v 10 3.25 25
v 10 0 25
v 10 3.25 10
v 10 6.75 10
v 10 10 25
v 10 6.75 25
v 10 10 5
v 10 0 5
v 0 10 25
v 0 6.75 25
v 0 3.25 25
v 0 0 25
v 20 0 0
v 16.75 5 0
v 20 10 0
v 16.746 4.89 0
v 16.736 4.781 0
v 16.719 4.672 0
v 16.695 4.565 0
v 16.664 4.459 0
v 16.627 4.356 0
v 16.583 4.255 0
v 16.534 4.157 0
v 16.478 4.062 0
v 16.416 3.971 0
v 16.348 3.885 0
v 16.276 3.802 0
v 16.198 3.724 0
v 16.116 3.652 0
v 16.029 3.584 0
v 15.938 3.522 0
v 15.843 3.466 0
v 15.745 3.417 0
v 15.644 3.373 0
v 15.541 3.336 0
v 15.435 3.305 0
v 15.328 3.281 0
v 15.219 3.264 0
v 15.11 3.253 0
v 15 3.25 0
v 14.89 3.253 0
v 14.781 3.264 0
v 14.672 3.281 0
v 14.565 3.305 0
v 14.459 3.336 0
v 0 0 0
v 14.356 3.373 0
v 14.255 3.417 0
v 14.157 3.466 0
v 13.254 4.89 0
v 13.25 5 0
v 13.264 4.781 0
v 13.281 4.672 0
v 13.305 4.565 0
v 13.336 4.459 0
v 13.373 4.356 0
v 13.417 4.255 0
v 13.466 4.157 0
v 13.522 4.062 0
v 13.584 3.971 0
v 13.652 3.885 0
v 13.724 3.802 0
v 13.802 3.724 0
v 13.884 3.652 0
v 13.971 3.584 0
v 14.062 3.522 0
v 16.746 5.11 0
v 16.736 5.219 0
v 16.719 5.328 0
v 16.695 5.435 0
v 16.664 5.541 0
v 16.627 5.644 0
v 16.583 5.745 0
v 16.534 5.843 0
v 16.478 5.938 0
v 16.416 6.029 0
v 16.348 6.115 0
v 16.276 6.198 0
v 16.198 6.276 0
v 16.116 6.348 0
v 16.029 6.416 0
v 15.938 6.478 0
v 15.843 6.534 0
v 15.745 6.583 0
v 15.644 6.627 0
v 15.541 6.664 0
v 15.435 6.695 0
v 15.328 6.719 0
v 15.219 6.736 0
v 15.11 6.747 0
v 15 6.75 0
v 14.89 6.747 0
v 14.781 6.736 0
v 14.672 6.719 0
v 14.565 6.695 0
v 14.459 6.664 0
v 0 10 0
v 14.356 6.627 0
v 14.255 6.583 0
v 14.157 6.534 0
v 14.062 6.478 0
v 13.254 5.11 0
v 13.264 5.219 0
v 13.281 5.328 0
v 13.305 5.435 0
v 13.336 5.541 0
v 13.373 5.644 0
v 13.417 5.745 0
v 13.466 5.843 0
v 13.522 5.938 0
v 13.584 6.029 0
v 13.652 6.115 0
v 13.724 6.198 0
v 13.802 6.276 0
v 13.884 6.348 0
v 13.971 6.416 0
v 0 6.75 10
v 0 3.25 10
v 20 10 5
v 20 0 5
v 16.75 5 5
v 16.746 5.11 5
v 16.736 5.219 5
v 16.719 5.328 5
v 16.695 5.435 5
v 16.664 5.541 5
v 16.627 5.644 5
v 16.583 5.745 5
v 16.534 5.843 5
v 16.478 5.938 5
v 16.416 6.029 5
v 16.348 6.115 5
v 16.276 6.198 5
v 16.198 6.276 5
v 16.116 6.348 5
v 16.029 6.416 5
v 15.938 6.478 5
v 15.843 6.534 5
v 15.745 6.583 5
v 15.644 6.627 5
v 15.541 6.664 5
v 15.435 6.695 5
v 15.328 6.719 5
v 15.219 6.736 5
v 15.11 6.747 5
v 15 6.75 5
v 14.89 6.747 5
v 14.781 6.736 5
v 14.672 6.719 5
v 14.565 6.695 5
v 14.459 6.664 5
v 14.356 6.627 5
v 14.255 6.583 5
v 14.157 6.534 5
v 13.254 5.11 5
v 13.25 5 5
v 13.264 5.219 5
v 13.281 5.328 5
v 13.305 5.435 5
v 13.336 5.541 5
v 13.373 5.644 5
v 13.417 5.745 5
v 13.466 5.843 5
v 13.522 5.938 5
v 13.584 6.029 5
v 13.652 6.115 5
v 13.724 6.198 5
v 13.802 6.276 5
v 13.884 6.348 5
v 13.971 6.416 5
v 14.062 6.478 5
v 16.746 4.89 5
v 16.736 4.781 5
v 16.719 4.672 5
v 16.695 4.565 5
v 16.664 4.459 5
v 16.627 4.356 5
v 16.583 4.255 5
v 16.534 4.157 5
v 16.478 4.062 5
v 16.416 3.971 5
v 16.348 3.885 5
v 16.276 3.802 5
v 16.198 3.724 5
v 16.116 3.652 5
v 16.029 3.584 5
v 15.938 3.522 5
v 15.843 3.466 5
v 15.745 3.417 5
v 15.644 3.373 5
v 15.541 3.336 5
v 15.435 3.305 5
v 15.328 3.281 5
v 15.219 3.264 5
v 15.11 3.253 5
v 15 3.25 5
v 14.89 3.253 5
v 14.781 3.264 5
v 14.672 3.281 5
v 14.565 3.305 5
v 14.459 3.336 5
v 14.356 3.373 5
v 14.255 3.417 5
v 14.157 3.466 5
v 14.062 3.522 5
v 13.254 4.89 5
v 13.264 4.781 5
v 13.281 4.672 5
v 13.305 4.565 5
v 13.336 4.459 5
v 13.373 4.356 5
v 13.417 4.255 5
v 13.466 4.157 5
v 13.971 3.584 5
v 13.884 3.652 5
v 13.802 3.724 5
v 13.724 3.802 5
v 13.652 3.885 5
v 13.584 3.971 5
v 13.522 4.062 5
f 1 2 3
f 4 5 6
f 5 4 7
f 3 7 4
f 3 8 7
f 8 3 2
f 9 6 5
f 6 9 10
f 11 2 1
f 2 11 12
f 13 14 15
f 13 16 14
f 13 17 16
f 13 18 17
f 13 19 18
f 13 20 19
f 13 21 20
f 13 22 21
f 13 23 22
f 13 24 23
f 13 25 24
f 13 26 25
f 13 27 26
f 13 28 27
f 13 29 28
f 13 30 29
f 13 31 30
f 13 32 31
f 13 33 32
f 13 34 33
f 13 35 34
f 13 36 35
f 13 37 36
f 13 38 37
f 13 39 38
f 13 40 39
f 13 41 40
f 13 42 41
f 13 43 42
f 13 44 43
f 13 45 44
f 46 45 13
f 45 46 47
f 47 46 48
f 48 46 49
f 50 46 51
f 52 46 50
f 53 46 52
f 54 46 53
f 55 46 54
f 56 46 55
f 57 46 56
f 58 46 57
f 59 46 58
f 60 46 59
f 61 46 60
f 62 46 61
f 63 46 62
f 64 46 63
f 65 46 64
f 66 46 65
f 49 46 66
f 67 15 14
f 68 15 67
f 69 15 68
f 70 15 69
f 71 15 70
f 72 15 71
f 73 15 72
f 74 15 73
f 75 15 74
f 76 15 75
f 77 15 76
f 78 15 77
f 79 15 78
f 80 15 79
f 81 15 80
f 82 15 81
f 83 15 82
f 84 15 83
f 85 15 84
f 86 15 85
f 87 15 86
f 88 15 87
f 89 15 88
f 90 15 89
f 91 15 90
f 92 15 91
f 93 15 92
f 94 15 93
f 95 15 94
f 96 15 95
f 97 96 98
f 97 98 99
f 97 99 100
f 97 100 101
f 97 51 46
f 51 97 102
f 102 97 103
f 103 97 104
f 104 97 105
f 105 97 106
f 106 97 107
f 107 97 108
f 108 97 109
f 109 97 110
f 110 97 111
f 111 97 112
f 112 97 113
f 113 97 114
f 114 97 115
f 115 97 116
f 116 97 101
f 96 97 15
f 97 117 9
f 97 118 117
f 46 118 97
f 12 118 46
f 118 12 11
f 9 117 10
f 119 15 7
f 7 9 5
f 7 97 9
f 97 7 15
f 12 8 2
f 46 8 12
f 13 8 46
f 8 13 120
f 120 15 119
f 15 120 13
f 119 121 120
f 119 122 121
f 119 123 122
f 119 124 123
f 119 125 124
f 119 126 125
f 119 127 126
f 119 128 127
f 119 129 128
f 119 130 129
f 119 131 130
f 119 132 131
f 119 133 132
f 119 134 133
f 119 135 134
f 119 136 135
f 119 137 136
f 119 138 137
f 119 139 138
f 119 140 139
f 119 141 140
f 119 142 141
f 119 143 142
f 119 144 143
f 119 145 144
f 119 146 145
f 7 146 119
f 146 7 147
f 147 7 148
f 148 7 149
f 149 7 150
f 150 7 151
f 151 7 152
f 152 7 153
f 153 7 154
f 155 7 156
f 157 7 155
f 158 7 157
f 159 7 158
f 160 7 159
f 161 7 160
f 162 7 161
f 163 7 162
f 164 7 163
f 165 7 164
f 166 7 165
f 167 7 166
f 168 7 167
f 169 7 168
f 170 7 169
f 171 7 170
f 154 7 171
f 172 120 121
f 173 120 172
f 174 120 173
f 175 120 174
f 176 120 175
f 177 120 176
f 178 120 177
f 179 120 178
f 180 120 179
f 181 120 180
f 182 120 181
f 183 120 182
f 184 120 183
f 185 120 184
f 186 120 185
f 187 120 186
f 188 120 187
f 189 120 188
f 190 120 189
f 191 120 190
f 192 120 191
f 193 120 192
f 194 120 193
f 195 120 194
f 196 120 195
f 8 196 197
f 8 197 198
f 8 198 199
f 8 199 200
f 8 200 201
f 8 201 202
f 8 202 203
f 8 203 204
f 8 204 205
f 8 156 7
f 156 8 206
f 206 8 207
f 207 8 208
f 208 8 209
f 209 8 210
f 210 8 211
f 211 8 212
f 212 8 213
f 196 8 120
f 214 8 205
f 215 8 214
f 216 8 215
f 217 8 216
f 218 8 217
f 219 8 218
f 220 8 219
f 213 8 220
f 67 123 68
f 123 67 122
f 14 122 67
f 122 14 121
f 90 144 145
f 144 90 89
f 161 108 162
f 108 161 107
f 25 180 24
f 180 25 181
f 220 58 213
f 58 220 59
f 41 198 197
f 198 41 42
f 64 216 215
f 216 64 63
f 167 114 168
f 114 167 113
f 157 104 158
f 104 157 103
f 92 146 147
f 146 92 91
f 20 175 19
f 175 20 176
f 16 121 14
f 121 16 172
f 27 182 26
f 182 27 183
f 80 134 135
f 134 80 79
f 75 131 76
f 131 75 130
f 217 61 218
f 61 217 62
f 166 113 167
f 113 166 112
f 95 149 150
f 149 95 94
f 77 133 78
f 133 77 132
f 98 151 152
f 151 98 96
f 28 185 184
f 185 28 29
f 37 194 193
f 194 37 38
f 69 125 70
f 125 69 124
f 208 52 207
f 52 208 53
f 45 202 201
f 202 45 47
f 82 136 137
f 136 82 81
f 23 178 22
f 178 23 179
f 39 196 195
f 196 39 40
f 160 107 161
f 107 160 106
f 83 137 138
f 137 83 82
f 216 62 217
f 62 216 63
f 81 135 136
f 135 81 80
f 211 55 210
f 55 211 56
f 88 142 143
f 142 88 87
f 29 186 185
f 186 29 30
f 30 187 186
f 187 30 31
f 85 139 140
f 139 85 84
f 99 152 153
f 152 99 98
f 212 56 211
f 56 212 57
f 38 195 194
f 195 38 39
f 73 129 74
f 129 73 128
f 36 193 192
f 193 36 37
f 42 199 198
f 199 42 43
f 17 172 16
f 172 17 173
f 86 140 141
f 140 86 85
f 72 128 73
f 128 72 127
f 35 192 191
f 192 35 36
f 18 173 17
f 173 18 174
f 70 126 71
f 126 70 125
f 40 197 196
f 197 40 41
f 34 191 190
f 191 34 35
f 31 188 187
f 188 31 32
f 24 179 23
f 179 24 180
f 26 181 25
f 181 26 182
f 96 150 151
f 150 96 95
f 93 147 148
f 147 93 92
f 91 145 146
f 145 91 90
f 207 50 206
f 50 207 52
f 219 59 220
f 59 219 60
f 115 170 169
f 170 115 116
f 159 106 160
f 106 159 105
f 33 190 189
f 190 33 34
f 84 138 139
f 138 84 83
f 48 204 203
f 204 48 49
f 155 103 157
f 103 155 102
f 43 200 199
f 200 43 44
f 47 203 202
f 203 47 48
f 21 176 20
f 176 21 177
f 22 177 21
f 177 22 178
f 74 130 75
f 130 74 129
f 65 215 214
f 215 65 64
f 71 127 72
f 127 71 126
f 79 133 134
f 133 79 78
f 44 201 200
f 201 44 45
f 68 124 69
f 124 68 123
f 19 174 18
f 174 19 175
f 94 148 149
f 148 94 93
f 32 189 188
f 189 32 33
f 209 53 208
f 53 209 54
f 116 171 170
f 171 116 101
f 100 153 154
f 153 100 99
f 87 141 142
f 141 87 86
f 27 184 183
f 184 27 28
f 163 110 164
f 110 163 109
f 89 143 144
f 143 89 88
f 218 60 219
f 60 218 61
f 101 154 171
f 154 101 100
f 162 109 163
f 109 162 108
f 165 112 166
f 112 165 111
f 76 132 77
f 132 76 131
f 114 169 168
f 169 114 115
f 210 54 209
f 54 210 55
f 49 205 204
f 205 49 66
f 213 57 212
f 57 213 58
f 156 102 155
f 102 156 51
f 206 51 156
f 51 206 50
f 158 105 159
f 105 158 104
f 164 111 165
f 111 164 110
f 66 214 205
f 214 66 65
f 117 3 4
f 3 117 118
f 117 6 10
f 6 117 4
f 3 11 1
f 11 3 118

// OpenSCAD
$fn=100;
dv=3.5;
difference()
{
union()
{
cube([10,10,25]);
cube([20,10,5]);
}
translate([15,5,-1]) cylinder(h=10,d=3.5);
translate([-1,5-dv/2,10]) cube([20,dv,30]);
}
